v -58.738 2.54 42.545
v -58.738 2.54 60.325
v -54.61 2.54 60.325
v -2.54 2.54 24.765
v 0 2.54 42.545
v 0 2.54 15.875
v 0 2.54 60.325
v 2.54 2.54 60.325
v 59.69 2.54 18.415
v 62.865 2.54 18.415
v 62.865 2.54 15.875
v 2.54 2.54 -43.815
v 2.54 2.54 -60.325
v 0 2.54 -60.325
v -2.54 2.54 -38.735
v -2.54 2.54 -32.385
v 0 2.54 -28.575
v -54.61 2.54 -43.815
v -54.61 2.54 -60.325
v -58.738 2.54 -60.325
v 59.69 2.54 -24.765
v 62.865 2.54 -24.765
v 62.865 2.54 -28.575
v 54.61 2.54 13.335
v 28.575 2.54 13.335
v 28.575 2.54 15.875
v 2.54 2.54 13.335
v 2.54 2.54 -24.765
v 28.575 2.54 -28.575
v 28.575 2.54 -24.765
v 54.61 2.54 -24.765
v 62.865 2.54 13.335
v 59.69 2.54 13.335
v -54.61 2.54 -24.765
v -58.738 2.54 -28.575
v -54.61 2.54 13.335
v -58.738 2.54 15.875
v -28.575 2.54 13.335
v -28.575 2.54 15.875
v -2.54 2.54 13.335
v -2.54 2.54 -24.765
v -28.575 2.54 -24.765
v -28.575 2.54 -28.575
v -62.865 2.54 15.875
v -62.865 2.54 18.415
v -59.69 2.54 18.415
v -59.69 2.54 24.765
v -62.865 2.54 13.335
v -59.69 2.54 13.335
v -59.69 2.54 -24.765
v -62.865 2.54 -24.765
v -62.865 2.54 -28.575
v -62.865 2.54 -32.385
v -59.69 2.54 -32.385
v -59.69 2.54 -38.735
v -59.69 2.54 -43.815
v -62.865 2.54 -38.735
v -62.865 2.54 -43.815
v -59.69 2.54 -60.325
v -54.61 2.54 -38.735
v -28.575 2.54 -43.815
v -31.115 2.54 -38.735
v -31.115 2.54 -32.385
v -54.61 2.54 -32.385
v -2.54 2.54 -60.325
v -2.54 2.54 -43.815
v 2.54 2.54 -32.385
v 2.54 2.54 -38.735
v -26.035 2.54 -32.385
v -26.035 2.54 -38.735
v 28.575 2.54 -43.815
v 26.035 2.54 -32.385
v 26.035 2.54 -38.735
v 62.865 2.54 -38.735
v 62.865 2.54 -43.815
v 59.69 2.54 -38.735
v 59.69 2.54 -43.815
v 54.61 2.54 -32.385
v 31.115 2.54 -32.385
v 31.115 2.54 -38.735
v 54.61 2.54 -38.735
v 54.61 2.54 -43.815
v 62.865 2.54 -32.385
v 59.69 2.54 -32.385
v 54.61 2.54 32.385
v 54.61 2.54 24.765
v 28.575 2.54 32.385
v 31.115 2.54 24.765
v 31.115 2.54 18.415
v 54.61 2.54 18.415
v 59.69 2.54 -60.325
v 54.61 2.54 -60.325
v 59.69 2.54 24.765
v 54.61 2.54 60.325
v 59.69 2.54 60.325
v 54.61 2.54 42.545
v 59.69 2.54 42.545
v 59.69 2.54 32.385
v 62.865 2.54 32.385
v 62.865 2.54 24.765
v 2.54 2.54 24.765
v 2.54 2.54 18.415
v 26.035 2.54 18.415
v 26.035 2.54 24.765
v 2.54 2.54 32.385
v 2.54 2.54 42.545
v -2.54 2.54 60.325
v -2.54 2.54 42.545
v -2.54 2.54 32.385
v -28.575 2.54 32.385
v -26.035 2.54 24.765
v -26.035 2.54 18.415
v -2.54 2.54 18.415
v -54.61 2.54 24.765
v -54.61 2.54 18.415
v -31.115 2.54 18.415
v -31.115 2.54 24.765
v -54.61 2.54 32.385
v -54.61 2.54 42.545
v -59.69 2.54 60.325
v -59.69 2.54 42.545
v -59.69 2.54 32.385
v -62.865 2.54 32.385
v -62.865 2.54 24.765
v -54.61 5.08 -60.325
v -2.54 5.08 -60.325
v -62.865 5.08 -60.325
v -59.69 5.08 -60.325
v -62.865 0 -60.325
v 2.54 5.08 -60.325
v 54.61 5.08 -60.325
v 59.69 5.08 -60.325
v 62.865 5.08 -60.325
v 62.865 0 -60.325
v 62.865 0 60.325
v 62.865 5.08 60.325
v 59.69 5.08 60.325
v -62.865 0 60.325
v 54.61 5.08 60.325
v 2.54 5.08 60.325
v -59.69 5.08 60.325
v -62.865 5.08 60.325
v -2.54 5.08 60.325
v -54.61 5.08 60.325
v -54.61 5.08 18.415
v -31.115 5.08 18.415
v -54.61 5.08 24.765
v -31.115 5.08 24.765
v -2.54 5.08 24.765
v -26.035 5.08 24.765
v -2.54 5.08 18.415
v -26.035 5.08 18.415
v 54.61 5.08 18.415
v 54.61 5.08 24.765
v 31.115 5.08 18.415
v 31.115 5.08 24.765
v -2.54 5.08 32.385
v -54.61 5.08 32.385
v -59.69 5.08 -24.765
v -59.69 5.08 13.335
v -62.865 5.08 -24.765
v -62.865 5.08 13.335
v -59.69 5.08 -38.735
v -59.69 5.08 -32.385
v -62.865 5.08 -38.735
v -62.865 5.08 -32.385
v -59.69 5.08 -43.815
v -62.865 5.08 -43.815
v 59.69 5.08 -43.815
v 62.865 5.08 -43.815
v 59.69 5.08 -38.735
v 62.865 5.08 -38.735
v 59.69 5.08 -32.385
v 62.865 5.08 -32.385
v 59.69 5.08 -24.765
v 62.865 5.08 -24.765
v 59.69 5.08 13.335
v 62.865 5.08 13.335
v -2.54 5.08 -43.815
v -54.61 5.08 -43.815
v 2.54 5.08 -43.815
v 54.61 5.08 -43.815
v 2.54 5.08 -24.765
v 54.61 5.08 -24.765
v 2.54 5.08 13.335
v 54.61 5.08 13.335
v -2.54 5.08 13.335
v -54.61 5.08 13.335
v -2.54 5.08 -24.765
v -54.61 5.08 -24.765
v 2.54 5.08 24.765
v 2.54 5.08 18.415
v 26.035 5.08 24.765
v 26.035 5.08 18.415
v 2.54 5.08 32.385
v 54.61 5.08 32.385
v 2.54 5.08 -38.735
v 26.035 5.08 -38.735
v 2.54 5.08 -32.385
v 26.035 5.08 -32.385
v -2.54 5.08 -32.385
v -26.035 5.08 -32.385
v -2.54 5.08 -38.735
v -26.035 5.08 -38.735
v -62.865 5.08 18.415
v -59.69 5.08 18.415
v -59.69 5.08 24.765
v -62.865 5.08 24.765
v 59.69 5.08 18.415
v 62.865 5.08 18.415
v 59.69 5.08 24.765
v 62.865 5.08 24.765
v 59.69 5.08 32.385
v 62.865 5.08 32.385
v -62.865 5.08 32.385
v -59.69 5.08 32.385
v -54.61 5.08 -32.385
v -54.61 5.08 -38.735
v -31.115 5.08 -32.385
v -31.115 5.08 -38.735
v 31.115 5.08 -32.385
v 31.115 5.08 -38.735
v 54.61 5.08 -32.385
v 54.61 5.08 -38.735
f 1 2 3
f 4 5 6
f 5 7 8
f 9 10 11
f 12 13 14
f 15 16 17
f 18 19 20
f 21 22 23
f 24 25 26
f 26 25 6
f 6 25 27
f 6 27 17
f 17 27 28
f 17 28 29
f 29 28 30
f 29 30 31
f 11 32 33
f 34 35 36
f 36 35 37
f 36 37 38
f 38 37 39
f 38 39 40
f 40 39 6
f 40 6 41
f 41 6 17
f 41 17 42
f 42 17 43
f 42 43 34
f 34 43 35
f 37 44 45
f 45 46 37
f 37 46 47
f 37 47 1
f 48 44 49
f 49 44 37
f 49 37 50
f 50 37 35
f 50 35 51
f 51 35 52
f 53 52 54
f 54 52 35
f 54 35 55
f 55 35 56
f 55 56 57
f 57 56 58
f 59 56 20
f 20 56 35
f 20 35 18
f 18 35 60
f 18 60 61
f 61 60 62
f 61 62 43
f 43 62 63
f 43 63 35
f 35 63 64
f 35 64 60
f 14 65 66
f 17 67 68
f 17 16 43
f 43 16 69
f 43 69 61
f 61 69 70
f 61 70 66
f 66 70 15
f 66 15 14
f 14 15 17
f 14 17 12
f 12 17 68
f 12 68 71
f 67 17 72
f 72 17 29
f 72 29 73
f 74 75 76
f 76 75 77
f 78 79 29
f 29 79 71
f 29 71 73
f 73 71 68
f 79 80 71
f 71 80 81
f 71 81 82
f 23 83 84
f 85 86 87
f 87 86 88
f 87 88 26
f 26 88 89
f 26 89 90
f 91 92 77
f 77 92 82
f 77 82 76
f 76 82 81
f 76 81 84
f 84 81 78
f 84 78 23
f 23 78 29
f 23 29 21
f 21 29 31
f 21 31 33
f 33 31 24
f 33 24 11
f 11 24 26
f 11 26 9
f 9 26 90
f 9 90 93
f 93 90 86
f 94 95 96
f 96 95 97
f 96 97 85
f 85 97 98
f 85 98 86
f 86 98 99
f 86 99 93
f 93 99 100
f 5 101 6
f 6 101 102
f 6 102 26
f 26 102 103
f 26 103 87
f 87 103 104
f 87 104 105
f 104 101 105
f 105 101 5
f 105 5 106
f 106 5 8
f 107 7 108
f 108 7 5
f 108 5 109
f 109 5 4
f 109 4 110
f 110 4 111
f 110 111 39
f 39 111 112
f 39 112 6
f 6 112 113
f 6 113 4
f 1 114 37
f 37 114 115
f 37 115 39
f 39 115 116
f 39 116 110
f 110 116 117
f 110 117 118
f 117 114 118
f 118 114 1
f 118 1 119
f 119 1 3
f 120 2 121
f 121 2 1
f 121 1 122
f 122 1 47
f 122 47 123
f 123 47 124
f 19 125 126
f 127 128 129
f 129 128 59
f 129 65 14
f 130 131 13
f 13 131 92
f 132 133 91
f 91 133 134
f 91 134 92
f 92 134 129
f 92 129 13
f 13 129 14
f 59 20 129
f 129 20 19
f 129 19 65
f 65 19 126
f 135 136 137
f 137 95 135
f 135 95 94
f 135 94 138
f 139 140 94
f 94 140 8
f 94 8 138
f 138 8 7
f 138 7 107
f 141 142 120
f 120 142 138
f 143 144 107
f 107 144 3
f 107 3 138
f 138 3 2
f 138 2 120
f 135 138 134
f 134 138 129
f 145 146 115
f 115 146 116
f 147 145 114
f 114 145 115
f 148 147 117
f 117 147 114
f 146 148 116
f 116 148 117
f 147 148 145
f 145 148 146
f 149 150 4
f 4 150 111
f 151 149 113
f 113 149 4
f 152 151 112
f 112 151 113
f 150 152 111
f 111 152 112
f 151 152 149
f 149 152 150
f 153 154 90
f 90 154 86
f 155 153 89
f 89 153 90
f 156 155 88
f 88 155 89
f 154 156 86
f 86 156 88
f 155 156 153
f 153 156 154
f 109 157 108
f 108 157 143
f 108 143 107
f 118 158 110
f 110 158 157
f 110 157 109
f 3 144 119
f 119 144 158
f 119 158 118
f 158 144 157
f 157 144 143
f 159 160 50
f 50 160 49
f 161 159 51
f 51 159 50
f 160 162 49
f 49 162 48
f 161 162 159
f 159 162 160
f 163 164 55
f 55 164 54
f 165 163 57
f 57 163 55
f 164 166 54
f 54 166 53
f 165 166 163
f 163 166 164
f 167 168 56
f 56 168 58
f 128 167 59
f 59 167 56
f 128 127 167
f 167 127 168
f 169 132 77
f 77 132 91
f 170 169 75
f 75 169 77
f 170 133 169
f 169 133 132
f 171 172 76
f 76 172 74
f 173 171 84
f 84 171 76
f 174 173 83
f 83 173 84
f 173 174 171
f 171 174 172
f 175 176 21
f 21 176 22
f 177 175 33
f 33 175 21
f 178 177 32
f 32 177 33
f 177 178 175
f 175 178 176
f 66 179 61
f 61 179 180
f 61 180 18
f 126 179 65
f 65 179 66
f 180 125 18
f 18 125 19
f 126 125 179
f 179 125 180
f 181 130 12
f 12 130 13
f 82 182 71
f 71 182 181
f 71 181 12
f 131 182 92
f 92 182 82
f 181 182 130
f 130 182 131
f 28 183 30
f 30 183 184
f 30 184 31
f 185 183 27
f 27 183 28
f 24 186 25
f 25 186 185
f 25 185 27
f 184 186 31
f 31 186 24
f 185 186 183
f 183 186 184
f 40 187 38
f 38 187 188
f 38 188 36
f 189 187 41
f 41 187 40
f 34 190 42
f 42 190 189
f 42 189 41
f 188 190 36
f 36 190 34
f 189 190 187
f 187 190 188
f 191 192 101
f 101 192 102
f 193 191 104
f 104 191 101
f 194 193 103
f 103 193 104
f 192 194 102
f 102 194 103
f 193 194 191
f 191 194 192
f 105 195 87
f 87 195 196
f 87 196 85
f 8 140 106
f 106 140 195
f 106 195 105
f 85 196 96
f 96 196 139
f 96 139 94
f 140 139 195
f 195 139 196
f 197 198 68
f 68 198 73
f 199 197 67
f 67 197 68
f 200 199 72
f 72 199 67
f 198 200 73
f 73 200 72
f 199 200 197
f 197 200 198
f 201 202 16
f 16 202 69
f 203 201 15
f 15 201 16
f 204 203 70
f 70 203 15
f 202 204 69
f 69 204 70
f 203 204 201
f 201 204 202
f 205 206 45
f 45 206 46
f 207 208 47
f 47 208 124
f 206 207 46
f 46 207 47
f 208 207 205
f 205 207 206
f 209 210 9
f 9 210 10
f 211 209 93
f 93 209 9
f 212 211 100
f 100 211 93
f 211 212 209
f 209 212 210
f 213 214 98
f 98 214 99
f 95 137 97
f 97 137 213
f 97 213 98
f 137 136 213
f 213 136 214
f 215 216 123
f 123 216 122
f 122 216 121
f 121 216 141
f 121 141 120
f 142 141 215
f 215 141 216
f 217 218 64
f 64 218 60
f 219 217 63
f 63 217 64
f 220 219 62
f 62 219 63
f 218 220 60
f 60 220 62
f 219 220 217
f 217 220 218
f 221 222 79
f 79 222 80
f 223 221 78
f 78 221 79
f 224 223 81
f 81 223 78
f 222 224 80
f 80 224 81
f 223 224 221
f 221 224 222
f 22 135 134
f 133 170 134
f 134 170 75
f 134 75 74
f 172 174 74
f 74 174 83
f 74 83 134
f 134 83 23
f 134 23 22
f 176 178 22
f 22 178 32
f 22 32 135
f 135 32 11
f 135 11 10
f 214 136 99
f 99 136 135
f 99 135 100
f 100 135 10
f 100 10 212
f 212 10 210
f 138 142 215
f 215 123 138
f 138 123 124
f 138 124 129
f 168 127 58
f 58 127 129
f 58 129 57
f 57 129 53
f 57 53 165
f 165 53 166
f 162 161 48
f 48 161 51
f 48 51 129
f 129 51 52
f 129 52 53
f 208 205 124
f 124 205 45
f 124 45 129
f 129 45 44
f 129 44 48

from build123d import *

# Parameters (mm, degrees)
SKETCH2_W           = 120.65
SKETCH2_H           = 120.65
BOSS_EXTRUDE1_DEPTH = 2.54
SKETCH3_W           = 52.07
SKETCH3_H           = 16.51
SKETCH3_W_2         = 0.635
SKETCH3_H_2         = 6.35
SKETCH3_H_3         = 27.94
SKETCH3_W_3         = 23.495
SKETCH3_H_4         = 38.1
BOSS_EXTRUDE2_DEPTH = 2.54
BOSS_EXTRUDE4_DEPTH = 2.54


with BuildPart() as part:
    # Sketch2 → Boss-Extrude1 (new body)
    with BuildSketch(Plane(origin=(0, 0, 0), x_dir=(1, 0, 0), z_dir=(0, 1, 0))):
        Rectangle(SKETCH2_W, SKETCH2_H)
    extrude(amount=BOSS_EXTRUDE1_DEPTH)

    # Sketch3 → Boss-Extrude2 (add)
    with BuildSketch(Plane(origin=(0, 2.54, 0), x_dir=(1, 0, 0), z_dir=(0, 1, 0))):
        with Locations((-28.575, 52.07)):
            Rectangle(SKETCH3_W, SKETCH3_H)
        with Locations((-60.0075, -21.59)):
            Rectangle(SKETCH3_W_2, SKETCH3_H_2)
        with Locations((60.0075, -46.355)):
            Rectangle(SKETCH3_W_2, SKETCH3_H_3)
        with Locations((-42.8625, -21.59)):
            Rectangle(SKETCH3_W_3, SKETCH3_H_2)
        with Locations((-14.2875, -21.59)):
            Rectangle(SKETCH3_W_3, SKETCH3_H_2)
        with Locations((-60.0075, 52.07)):
            Rectangle(SKETCH3_W_2, SKETCH3_H)
        with Locations((60.0075, 5.715)):
            Rectangle(SKETCH3_W_2, SKETCH3_H_4)
        with Locations((42.8625, -21.59)):
            Rectangle(SKETCH3_W_3, SKETCH3_H_2)
        with Locations((14.2875, -21.59)):
            Rectangle(SKETCH3_W_3, SKETCH3_H_2)
        with Locations((-60.0075, 5.715)):
            Rectangle(SKETCH3_W_2, SKETCH3_H_4)
        with Locations((-60.0075, -46.355)):
            Rectangle(SKETCH3_W_2, SKETCH3_H_3)
        with Locations((60.0075, 52.07)):
            Rectangle(SKETCH3_W_2, SKETCH3_H)
        with Locations((28.575, 52.07)):
            Rectangle(SKETCH3_W, SKETCH3_H)
        with Locations((-28.575, -46.355)):
            Rectangle(SKETCH3_W, SKETCH3_H_3)
        with Locations((28.575, -46.355)):
            Rectangle(SKETCH3_W, SKETCH3_H_3)
        with Locations((60.0075, -21.59)):
            Rectangle(SKETCH3_W_2, SKETCH3_H_2)
        with Locations((28.575, 5.715)):
            Rectangle(SKETCH3_W, SKETCH3_H_4)
        with Locations((-42.8625, 35.56)):
            Rectangle(SKETCH3_W_3, SKETCH3_H_2)
        with Locations((-14.2875, 35.56)):
            Rectangle(SKETCH3_W_3, SKETCH3_H_2)
        with Locations((14.2875, 35.56)):
            Rectangle(SKETCH3_W_3, SKETCH3_H_2)
        with Locations((42.8625, 35.56)):
            Rectangle(SKETCH3_W_3, SKETCH3_H_2)
        with Locations((-28.575, 5.715)):
            Rectangle(SKETCH3_W, SKETCH3_H_4)
        with Locations((-60.0075, 35.56)):
            Rectangle(SKETCH3_W_2, SKETCH3_H_2)
        with Locations((60.0075, 35.56)):
            Rectangle(SKETCH3_W_2, SKETCH3_H_2)
    extrude(amount=BOSS_EXTRUDE2_DEPTH)

    # Sketch5 → Boss-Extrude4 (add)
    with BuildSketch(Plane(origin=(60.325, 0, 0), x_dir=(0, 0, -1), z_dir=(1, 0, 0))):
        Polygon((-60.325, 0), (60.325, 0), (60.325, 5.08), (43.815, 5.08), (43.815, 2.54), (38.735, 2.54), (38.735, 5.08), (32.385, 5.08), (32.385, 2.54), (24.765, 2.54), (24.765, 5.08), (-13.335, 5.08), (-13.335, 2.54), (-18.415, 2.54), (-18.415, 5.08), (-24.765, 5.08), (-24.765, 2.54), (-32.385, 2.54), (-32.385, 5.08), (-60.325, 5.08), align=None)
    boss_extrude4 = extrude(amount=BOSS_EXTRUDE4_DEPTH)

    # Mirror2: Boss-Extrude4 across plane
    add(boss_extrude4.mirror(Plane(origin=(0, 0, 0), x_dir=(0, 0, 1), z_dir=(1, 0, 0))))


solid = part.part
